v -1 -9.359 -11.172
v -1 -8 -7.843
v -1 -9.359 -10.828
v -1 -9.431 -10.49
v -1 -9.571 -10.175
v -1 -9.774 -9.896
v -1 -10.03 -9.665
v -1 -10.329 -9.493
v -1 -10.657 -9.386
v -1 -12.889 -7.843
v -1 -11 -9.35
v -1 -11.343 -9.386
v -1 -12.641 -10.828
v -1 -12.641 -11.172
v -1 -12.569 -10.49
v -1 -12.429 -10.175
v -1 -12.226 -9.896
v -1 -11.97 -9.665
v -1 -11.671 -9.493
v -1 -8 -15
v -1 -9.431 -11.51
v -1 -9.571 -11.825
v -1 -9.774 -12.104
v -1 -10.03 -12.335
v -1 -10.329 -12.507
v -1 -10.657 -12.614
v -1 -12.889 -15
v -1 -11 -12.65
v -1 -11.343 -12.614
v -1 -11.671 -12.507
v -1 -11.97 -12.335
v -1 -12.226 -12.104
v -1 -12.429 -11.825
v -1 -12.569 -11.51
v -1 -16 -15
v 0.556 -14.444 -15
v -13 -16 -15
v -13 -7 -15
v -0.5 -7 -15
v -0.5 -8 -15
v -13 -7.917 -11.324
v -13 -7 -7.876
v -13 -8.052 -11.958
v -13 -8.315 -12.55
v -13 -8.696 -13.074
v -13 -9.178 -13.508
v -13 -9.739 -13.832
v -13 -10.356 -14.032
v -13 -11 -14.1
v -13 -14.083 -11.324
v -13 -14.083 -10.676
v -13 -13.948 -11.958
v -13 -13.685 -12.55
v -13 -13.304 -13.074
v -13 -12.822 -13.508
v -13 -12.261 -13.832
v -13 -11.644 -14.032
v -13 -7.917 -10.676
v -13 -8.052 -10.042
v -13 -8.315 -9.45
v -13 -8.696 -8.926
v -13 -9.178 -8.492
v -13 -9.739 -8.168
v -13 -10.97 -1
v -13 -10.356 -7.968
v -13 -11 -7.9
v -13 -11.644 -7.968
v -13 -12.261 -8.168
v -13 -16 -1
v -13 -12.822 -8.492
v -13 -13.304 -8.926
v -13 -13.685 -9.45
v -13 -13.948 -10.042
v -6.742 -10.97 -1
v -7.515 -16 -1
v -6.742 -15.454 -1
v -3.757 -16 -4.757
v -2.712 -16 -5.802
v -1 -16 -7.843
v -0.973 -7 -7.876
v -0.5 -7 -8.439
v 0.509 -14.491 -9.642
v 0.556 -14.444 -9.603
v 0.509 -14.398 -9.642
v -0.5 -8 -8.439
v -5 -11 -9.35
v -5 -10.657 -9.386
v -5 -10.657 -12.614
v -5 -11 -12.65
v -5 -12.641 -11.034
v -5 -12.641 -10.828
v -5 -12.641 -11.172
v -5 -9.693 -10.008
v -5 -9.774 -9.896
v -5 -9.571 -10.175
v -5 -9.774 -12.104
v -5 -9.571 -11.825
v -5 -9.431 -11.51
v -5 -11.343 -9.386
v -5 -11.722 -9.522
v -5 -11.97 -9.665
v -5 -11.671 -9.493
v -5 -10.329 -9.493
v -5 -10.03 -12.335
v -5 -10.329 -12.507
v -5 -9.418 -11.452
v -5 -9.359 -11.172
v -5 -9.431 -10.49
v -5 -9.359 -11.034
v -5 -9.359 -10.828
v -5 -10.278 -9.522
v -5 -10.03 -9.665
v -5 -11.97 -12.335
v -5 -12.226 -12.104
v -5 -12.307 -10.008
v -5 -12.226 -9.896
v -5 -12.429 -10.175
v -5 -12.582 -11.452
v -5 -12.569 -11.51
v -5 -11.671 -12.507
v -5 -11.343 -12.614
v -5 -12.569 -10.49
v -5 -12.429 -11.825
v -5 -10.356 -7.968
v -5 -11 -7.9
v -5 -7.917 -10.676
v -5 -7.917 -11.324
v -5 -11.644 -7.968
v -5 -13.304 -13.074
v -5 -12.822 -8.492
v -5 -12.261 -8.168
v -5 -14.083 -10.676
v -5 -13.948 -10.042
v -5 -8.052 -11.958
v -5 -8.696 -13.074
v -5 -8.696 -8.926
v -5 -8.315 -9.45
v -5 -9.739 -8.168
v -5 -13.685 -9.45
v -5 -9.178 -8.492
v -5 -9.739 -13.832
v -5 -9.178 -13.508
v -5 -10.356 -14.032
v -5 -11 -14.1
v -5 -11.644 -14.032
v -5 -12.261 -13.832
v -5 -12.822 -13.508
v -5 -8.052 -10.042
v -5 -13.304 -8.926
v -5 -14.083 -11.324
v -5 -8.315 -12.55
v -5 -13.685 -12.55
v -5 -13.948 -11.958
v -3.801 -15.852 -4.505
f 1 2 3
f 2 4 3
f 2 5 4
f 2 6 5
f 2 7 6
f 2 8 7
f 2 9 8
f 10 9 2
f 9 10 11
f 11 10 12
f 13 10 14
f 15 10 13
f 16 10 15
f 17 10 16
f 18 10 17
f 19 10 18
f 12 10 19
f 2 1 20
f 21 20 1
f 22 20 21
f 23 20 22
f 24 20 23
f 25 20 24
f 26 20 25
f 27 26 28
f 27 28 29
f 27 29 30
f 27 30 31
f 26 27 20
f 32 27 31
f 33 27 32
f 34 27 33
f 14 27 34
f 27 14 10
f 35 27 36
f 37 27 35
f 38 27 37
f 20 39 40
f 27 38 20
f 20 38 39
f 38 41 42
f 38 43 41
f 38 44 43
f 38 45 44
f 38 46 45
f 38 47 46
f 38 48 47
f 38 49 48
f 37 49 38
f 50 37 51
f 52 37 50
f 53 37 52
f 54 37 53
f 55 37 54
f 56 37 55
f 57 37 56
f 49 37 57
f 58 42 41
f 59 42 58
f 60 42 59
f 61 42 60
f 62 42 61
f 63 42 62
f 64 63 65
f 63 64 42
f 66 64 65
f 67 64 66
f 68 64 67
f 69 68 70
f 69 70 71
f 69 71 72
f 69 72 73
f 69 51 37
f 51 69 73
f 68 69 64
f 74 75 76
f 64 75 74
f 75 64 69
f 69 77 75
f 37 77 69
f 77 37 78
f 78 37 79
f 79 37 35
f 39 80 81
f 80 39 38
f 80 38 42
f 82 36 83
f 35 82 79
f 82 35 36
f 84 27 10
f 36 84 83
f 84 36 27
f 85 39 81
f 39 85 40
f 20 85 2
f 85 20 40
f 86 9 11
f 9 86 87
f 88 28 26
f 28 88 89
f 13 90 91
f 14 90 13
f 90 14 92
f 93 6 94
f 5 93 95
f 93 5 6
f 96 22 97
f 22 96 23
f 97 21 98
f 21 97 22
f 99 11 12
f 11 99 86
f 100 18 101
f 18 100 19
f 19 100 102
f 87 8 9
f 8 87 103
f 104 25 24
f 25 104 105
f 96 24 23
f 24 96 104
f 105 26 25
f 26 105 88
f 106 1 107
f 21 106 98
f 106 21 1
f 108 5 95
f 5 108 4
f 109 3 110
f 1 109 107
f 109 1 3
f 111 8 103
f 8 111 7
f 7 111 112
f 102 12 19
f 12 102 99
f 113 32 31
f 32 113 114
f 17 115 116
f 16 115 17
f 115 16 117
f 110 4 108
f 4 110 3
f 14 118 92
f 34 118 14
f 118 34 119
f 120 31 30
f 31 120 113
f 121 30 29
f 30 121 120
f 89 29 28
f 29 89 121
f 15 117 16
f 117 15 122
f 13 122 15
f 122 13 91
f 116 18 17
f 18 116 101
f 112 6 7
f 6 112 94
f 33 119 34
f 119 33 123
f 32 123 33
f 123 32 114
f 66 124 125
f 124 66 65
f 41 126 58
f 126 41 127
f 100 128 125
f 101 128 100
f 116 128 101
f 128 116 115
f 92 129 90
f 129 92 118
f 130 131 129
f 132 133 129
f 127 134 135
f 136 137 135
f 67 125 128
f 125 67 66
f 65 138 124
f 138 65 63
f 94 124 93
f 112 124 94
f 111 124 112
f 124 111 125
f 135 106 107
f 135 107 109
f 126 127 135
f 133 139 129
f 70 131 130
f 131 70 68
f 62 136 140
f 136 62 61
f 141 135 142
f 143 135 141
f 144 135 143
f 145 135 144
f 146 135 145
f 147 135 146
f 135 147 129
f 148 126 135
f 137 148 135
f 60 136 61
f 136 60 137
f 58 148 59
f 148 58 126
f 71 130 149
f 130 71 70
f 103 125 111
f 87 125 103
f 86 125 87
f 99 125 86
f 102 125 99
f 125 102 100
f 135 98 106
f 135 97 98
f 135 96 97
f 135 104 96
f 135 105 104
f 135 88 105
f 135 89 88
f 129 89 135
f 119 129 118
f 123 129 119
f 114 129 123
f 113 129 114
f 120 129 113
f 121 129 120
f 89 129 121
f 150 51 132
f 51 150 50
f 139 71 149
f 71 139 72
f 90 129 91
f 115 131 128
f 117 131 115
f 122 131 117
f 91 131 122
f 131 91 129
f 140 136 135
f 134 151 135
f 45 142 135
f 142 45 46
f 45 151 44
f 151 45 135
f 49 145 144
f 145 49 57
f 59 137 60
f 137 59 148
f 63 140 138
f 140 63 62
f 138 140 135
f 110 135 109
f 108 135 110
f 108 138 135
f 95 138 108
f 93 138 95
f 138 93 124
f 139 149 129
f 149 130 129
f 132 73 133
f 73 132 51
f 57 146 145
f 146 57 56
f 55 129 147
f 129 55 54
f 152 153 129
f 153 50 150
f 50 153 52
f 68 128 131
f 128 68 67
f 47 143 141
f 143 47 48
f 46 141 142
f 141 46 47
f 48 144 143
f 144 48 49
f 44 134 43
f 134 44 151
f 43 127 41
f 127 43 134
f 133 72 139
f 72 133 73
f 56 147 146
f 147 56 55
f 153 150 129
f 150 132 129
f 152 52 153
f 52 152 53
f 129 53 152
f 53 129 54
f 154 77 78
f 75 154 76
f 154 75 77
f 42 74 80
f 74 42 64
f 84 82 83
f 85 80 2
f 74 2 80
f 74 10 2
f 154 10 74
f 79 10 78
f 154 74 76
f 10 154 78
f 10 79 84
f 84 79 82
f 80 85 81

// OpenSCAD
// PRUSA iteration4
// Endstop block
// GNU GPL v3
// Josef Průša <iam@josefprusa.cz> and contributors
// http://www.reprap.org/wiki/Prusa_Mendel
// http://prusamendel.org

module endstop_block()
{
    difference()
    {
        union()
        {
            // body
            translate([1,-16,1]) cube([12,9,14]);
            translate([1,-16,1]) rotate([0,0,45]) cube([3,2.2,14]);
            translate([0.5,-8,1]) cube([3,1,14]);
        }

        // screw
        translate([-4,-11,11]) rotate([0,90,0]) cylinder(r=1.65, h=10, $fn=30);
        translate([5,-11,11]) rotate([0,90,0]) cylinder(r=3.1, h=10, $fn=30);

        // edges
        translate([-13,-22,-0]) rotate([45,45,0]) cube([15,15,15]);
        translate([-1,-0,-10]) rotate([60,0,0]) cube([15,15,15]);
        translate([-12,-20,0]) rotate([0,50,0]) cube([15,15,15]);
    }
}


rotate([0,180,0]) endstop_block();
